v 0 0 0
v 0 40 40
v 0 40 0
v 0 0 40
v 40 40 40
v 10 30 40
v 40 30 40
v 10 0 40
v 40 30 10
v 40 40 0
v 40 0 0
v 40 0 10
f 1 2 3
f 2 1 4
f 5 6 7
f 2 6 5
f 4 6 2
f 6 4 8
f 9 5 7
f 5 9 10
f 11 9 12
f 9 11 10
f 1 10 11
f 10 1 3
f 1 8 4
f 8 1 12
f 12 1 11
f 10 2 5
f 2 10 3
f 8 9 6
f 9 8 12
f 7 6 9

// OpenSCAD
difference(){
cube([40,40,40]);

translate([40,0,10])
rotate([0,-45,0])
cube(60,30,30);
}

translate([0,30,0])
cube([40,10,40]);
